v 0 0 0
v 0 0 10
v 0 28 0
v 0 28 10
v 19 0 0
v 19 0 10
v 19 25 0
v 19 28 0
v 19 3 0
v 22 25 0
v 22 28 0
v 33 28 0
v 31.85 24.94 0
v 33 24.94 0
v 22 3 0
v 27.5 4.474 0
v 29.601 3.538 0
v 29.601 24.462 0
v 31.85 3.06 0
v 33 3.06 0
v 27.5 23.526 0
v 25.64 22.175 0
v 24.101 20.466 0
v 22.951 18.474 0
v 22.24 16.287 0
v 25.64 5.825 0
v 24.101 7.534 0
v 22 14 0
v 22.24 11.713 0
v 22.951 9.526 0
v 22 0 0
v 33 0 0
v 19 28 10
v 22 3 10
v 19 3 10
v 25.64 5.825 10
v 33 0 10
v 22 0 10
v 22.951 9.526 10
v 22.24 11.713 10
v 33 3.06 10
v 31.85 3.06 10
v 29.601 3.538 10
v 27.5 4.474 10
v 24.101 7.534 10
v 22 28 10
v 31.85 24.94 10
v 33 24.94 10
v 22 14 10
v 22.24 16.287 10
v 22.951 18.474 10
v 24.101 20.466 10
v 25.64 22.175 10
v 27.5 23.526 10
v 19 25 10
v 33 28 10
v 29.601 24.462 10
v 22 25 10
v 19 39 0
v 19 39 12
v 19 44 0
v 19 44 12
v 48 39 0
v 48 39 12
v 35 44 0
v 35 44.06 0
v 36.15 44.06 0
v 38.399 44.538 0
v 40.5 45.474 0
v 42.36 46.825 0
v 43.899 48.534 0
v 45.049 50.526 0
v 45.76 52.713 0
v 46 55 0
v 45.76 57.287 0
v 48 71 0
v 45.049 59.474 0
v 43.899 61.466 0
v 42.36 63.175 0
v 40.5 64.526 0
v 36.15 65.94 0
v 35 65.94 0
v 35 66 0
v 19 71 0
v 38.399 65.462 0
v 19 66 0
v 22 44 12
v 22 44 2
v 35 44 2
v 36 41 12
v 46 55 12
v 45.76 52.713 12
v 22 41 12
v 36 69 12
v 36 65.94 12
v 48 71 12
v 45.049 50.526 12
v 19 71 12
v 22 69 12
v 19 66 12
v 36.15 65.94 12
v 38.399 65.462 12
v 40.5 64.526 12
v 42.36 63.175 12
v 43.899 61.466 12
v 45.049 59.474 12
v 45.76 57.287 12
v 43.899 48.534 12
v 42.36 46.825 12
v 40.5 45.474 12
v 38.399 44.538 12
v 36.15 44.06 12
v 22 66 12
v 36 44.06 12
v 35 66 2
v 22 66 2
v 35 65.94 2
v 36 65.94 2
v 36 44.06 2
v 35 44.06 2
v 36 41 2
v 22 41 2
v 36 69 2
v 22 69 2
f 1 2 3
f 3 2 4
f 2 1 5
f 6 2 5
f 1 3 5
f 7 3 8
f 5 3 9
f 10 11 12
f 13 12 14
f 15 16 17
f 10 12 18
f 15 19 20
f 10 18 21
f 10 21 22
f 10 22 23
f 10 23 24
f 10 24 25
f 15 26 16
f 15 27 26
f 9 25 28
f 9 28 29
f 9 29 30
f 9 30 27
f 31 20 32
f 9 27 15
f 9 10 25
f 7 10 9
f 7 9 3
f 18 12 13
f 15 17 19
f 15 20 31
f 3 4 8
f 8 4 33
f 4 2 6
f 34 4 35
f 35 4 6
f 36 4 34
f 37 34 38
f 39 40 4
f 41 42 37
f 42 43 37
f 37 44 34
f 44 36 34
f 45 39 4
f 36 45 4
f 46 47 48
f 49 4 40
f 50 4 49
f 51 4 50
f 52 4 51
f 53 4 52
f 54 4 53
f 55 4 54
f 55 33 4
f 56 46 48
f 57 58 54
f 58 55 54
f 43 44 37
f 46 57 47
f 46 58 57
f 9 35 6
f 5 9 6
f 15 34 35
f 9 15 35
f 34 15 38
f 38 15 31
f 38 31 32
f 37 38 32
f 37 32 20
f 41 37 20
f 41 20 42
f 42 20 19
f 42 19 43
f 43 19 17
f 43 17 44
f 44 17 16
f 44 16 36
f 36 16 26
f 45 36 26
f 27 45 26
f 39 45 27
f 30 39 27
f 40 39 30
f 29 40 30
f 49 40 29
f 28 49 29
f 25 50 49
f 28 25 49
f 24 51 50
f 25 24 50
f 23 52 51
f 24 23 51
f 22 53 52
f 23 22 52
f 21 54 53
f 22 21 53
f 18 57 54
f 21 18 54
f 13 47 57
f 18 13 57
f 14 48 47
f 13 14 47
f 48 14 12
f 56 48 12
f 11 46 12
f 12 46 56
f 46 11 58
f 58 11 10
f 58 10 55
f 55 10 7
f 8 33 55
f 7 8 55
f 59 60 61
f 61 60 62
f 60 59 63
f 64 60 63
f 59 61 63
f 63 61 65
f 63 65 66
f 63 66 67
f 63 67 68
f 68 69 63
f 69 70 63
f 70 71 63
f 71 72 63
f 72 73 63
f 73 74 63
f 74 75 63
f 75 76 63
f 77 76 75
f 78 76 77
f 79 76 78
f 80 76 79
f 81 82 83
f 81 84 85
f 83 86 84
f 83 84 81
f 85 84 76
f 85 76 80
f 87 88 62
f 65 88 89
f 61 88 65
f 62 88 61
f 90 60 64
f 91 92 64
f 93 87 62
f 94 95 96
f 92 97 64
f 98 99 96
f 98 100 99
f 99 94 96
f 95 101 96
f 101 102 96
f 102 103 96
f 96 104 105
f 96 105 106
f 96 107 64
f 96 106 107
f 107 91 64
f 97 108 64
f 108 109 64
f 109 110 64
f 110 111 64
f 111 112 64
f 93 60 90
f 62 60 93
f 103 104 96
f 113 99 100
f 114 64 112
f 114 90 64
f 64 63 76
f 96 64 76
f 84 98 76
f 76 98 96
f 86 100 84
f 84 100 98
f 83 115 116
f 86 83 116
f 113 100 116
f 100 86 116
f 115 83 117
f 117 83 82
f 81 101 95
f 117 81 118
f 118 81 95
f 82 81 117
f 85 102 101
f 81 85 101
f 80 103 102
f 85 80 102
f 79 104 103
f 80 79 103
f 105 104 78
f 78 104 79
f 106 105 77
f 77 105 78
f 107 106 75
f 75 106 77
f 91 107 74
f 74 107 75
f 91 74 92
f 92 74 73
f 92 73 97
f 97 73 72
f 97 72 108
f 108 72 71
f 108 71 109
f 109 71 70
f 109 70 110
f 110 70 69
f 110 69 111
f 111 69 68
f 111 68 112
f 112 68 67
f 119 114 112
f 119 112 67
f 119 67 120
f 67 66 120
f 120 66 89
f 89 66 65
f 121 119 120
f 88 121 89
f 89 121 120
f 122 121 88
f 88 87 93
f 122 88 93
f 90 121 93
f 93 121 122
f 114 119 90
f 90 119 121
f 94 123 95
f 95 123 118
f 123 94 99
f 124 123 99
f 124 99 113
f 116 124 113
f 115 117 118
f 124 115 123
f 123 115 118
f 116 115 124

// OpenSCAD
radius=11;
height=10;

top_border=2;
heel_width=3;
heel_height=3;

difference() {
	cube([3 * radius, 2 * radius + 2 * heel_height, height]);
	translate([3 * radius, radius + heel_height, 0]) {cylinder(height, r=radius);}
	translate([2 * radius - heel_width, 0, 0]) { cube([heel_width, heel_height, height]);}
	translate([2 * radius - heel_width, 2 * radius + heel_height, 0]) { cube([heel_width, heel_height, height]);}
}


translate([2 * radius - heel_width, 3 * radius + (2 * heel_height), 0]) {
	difference() {
		cube([2 * radius + 2 * top_border + heel_width, 2 * radius + 2 * heel_height + 2 * top_border, height + top_border]);
		translate([radius + top_border + heel_width, radius + top_border + heel_height, 0]) {cylinder(height + top_border, r=radius);}
		translate([0, top_border + heel_height, 0]) {cube([radius + top_border + heel_width, 2 * radius, height + top_border]);}
		translate([heel_width, top_border, top_border]) {cube([radius + heel_width, 2 * radius + 2 * heel_height, height]);}
		translate([0, top_border + heel_height, top_border]) {cube([heel_width, 2 * radius - heel_height, height]);}
	}
}
